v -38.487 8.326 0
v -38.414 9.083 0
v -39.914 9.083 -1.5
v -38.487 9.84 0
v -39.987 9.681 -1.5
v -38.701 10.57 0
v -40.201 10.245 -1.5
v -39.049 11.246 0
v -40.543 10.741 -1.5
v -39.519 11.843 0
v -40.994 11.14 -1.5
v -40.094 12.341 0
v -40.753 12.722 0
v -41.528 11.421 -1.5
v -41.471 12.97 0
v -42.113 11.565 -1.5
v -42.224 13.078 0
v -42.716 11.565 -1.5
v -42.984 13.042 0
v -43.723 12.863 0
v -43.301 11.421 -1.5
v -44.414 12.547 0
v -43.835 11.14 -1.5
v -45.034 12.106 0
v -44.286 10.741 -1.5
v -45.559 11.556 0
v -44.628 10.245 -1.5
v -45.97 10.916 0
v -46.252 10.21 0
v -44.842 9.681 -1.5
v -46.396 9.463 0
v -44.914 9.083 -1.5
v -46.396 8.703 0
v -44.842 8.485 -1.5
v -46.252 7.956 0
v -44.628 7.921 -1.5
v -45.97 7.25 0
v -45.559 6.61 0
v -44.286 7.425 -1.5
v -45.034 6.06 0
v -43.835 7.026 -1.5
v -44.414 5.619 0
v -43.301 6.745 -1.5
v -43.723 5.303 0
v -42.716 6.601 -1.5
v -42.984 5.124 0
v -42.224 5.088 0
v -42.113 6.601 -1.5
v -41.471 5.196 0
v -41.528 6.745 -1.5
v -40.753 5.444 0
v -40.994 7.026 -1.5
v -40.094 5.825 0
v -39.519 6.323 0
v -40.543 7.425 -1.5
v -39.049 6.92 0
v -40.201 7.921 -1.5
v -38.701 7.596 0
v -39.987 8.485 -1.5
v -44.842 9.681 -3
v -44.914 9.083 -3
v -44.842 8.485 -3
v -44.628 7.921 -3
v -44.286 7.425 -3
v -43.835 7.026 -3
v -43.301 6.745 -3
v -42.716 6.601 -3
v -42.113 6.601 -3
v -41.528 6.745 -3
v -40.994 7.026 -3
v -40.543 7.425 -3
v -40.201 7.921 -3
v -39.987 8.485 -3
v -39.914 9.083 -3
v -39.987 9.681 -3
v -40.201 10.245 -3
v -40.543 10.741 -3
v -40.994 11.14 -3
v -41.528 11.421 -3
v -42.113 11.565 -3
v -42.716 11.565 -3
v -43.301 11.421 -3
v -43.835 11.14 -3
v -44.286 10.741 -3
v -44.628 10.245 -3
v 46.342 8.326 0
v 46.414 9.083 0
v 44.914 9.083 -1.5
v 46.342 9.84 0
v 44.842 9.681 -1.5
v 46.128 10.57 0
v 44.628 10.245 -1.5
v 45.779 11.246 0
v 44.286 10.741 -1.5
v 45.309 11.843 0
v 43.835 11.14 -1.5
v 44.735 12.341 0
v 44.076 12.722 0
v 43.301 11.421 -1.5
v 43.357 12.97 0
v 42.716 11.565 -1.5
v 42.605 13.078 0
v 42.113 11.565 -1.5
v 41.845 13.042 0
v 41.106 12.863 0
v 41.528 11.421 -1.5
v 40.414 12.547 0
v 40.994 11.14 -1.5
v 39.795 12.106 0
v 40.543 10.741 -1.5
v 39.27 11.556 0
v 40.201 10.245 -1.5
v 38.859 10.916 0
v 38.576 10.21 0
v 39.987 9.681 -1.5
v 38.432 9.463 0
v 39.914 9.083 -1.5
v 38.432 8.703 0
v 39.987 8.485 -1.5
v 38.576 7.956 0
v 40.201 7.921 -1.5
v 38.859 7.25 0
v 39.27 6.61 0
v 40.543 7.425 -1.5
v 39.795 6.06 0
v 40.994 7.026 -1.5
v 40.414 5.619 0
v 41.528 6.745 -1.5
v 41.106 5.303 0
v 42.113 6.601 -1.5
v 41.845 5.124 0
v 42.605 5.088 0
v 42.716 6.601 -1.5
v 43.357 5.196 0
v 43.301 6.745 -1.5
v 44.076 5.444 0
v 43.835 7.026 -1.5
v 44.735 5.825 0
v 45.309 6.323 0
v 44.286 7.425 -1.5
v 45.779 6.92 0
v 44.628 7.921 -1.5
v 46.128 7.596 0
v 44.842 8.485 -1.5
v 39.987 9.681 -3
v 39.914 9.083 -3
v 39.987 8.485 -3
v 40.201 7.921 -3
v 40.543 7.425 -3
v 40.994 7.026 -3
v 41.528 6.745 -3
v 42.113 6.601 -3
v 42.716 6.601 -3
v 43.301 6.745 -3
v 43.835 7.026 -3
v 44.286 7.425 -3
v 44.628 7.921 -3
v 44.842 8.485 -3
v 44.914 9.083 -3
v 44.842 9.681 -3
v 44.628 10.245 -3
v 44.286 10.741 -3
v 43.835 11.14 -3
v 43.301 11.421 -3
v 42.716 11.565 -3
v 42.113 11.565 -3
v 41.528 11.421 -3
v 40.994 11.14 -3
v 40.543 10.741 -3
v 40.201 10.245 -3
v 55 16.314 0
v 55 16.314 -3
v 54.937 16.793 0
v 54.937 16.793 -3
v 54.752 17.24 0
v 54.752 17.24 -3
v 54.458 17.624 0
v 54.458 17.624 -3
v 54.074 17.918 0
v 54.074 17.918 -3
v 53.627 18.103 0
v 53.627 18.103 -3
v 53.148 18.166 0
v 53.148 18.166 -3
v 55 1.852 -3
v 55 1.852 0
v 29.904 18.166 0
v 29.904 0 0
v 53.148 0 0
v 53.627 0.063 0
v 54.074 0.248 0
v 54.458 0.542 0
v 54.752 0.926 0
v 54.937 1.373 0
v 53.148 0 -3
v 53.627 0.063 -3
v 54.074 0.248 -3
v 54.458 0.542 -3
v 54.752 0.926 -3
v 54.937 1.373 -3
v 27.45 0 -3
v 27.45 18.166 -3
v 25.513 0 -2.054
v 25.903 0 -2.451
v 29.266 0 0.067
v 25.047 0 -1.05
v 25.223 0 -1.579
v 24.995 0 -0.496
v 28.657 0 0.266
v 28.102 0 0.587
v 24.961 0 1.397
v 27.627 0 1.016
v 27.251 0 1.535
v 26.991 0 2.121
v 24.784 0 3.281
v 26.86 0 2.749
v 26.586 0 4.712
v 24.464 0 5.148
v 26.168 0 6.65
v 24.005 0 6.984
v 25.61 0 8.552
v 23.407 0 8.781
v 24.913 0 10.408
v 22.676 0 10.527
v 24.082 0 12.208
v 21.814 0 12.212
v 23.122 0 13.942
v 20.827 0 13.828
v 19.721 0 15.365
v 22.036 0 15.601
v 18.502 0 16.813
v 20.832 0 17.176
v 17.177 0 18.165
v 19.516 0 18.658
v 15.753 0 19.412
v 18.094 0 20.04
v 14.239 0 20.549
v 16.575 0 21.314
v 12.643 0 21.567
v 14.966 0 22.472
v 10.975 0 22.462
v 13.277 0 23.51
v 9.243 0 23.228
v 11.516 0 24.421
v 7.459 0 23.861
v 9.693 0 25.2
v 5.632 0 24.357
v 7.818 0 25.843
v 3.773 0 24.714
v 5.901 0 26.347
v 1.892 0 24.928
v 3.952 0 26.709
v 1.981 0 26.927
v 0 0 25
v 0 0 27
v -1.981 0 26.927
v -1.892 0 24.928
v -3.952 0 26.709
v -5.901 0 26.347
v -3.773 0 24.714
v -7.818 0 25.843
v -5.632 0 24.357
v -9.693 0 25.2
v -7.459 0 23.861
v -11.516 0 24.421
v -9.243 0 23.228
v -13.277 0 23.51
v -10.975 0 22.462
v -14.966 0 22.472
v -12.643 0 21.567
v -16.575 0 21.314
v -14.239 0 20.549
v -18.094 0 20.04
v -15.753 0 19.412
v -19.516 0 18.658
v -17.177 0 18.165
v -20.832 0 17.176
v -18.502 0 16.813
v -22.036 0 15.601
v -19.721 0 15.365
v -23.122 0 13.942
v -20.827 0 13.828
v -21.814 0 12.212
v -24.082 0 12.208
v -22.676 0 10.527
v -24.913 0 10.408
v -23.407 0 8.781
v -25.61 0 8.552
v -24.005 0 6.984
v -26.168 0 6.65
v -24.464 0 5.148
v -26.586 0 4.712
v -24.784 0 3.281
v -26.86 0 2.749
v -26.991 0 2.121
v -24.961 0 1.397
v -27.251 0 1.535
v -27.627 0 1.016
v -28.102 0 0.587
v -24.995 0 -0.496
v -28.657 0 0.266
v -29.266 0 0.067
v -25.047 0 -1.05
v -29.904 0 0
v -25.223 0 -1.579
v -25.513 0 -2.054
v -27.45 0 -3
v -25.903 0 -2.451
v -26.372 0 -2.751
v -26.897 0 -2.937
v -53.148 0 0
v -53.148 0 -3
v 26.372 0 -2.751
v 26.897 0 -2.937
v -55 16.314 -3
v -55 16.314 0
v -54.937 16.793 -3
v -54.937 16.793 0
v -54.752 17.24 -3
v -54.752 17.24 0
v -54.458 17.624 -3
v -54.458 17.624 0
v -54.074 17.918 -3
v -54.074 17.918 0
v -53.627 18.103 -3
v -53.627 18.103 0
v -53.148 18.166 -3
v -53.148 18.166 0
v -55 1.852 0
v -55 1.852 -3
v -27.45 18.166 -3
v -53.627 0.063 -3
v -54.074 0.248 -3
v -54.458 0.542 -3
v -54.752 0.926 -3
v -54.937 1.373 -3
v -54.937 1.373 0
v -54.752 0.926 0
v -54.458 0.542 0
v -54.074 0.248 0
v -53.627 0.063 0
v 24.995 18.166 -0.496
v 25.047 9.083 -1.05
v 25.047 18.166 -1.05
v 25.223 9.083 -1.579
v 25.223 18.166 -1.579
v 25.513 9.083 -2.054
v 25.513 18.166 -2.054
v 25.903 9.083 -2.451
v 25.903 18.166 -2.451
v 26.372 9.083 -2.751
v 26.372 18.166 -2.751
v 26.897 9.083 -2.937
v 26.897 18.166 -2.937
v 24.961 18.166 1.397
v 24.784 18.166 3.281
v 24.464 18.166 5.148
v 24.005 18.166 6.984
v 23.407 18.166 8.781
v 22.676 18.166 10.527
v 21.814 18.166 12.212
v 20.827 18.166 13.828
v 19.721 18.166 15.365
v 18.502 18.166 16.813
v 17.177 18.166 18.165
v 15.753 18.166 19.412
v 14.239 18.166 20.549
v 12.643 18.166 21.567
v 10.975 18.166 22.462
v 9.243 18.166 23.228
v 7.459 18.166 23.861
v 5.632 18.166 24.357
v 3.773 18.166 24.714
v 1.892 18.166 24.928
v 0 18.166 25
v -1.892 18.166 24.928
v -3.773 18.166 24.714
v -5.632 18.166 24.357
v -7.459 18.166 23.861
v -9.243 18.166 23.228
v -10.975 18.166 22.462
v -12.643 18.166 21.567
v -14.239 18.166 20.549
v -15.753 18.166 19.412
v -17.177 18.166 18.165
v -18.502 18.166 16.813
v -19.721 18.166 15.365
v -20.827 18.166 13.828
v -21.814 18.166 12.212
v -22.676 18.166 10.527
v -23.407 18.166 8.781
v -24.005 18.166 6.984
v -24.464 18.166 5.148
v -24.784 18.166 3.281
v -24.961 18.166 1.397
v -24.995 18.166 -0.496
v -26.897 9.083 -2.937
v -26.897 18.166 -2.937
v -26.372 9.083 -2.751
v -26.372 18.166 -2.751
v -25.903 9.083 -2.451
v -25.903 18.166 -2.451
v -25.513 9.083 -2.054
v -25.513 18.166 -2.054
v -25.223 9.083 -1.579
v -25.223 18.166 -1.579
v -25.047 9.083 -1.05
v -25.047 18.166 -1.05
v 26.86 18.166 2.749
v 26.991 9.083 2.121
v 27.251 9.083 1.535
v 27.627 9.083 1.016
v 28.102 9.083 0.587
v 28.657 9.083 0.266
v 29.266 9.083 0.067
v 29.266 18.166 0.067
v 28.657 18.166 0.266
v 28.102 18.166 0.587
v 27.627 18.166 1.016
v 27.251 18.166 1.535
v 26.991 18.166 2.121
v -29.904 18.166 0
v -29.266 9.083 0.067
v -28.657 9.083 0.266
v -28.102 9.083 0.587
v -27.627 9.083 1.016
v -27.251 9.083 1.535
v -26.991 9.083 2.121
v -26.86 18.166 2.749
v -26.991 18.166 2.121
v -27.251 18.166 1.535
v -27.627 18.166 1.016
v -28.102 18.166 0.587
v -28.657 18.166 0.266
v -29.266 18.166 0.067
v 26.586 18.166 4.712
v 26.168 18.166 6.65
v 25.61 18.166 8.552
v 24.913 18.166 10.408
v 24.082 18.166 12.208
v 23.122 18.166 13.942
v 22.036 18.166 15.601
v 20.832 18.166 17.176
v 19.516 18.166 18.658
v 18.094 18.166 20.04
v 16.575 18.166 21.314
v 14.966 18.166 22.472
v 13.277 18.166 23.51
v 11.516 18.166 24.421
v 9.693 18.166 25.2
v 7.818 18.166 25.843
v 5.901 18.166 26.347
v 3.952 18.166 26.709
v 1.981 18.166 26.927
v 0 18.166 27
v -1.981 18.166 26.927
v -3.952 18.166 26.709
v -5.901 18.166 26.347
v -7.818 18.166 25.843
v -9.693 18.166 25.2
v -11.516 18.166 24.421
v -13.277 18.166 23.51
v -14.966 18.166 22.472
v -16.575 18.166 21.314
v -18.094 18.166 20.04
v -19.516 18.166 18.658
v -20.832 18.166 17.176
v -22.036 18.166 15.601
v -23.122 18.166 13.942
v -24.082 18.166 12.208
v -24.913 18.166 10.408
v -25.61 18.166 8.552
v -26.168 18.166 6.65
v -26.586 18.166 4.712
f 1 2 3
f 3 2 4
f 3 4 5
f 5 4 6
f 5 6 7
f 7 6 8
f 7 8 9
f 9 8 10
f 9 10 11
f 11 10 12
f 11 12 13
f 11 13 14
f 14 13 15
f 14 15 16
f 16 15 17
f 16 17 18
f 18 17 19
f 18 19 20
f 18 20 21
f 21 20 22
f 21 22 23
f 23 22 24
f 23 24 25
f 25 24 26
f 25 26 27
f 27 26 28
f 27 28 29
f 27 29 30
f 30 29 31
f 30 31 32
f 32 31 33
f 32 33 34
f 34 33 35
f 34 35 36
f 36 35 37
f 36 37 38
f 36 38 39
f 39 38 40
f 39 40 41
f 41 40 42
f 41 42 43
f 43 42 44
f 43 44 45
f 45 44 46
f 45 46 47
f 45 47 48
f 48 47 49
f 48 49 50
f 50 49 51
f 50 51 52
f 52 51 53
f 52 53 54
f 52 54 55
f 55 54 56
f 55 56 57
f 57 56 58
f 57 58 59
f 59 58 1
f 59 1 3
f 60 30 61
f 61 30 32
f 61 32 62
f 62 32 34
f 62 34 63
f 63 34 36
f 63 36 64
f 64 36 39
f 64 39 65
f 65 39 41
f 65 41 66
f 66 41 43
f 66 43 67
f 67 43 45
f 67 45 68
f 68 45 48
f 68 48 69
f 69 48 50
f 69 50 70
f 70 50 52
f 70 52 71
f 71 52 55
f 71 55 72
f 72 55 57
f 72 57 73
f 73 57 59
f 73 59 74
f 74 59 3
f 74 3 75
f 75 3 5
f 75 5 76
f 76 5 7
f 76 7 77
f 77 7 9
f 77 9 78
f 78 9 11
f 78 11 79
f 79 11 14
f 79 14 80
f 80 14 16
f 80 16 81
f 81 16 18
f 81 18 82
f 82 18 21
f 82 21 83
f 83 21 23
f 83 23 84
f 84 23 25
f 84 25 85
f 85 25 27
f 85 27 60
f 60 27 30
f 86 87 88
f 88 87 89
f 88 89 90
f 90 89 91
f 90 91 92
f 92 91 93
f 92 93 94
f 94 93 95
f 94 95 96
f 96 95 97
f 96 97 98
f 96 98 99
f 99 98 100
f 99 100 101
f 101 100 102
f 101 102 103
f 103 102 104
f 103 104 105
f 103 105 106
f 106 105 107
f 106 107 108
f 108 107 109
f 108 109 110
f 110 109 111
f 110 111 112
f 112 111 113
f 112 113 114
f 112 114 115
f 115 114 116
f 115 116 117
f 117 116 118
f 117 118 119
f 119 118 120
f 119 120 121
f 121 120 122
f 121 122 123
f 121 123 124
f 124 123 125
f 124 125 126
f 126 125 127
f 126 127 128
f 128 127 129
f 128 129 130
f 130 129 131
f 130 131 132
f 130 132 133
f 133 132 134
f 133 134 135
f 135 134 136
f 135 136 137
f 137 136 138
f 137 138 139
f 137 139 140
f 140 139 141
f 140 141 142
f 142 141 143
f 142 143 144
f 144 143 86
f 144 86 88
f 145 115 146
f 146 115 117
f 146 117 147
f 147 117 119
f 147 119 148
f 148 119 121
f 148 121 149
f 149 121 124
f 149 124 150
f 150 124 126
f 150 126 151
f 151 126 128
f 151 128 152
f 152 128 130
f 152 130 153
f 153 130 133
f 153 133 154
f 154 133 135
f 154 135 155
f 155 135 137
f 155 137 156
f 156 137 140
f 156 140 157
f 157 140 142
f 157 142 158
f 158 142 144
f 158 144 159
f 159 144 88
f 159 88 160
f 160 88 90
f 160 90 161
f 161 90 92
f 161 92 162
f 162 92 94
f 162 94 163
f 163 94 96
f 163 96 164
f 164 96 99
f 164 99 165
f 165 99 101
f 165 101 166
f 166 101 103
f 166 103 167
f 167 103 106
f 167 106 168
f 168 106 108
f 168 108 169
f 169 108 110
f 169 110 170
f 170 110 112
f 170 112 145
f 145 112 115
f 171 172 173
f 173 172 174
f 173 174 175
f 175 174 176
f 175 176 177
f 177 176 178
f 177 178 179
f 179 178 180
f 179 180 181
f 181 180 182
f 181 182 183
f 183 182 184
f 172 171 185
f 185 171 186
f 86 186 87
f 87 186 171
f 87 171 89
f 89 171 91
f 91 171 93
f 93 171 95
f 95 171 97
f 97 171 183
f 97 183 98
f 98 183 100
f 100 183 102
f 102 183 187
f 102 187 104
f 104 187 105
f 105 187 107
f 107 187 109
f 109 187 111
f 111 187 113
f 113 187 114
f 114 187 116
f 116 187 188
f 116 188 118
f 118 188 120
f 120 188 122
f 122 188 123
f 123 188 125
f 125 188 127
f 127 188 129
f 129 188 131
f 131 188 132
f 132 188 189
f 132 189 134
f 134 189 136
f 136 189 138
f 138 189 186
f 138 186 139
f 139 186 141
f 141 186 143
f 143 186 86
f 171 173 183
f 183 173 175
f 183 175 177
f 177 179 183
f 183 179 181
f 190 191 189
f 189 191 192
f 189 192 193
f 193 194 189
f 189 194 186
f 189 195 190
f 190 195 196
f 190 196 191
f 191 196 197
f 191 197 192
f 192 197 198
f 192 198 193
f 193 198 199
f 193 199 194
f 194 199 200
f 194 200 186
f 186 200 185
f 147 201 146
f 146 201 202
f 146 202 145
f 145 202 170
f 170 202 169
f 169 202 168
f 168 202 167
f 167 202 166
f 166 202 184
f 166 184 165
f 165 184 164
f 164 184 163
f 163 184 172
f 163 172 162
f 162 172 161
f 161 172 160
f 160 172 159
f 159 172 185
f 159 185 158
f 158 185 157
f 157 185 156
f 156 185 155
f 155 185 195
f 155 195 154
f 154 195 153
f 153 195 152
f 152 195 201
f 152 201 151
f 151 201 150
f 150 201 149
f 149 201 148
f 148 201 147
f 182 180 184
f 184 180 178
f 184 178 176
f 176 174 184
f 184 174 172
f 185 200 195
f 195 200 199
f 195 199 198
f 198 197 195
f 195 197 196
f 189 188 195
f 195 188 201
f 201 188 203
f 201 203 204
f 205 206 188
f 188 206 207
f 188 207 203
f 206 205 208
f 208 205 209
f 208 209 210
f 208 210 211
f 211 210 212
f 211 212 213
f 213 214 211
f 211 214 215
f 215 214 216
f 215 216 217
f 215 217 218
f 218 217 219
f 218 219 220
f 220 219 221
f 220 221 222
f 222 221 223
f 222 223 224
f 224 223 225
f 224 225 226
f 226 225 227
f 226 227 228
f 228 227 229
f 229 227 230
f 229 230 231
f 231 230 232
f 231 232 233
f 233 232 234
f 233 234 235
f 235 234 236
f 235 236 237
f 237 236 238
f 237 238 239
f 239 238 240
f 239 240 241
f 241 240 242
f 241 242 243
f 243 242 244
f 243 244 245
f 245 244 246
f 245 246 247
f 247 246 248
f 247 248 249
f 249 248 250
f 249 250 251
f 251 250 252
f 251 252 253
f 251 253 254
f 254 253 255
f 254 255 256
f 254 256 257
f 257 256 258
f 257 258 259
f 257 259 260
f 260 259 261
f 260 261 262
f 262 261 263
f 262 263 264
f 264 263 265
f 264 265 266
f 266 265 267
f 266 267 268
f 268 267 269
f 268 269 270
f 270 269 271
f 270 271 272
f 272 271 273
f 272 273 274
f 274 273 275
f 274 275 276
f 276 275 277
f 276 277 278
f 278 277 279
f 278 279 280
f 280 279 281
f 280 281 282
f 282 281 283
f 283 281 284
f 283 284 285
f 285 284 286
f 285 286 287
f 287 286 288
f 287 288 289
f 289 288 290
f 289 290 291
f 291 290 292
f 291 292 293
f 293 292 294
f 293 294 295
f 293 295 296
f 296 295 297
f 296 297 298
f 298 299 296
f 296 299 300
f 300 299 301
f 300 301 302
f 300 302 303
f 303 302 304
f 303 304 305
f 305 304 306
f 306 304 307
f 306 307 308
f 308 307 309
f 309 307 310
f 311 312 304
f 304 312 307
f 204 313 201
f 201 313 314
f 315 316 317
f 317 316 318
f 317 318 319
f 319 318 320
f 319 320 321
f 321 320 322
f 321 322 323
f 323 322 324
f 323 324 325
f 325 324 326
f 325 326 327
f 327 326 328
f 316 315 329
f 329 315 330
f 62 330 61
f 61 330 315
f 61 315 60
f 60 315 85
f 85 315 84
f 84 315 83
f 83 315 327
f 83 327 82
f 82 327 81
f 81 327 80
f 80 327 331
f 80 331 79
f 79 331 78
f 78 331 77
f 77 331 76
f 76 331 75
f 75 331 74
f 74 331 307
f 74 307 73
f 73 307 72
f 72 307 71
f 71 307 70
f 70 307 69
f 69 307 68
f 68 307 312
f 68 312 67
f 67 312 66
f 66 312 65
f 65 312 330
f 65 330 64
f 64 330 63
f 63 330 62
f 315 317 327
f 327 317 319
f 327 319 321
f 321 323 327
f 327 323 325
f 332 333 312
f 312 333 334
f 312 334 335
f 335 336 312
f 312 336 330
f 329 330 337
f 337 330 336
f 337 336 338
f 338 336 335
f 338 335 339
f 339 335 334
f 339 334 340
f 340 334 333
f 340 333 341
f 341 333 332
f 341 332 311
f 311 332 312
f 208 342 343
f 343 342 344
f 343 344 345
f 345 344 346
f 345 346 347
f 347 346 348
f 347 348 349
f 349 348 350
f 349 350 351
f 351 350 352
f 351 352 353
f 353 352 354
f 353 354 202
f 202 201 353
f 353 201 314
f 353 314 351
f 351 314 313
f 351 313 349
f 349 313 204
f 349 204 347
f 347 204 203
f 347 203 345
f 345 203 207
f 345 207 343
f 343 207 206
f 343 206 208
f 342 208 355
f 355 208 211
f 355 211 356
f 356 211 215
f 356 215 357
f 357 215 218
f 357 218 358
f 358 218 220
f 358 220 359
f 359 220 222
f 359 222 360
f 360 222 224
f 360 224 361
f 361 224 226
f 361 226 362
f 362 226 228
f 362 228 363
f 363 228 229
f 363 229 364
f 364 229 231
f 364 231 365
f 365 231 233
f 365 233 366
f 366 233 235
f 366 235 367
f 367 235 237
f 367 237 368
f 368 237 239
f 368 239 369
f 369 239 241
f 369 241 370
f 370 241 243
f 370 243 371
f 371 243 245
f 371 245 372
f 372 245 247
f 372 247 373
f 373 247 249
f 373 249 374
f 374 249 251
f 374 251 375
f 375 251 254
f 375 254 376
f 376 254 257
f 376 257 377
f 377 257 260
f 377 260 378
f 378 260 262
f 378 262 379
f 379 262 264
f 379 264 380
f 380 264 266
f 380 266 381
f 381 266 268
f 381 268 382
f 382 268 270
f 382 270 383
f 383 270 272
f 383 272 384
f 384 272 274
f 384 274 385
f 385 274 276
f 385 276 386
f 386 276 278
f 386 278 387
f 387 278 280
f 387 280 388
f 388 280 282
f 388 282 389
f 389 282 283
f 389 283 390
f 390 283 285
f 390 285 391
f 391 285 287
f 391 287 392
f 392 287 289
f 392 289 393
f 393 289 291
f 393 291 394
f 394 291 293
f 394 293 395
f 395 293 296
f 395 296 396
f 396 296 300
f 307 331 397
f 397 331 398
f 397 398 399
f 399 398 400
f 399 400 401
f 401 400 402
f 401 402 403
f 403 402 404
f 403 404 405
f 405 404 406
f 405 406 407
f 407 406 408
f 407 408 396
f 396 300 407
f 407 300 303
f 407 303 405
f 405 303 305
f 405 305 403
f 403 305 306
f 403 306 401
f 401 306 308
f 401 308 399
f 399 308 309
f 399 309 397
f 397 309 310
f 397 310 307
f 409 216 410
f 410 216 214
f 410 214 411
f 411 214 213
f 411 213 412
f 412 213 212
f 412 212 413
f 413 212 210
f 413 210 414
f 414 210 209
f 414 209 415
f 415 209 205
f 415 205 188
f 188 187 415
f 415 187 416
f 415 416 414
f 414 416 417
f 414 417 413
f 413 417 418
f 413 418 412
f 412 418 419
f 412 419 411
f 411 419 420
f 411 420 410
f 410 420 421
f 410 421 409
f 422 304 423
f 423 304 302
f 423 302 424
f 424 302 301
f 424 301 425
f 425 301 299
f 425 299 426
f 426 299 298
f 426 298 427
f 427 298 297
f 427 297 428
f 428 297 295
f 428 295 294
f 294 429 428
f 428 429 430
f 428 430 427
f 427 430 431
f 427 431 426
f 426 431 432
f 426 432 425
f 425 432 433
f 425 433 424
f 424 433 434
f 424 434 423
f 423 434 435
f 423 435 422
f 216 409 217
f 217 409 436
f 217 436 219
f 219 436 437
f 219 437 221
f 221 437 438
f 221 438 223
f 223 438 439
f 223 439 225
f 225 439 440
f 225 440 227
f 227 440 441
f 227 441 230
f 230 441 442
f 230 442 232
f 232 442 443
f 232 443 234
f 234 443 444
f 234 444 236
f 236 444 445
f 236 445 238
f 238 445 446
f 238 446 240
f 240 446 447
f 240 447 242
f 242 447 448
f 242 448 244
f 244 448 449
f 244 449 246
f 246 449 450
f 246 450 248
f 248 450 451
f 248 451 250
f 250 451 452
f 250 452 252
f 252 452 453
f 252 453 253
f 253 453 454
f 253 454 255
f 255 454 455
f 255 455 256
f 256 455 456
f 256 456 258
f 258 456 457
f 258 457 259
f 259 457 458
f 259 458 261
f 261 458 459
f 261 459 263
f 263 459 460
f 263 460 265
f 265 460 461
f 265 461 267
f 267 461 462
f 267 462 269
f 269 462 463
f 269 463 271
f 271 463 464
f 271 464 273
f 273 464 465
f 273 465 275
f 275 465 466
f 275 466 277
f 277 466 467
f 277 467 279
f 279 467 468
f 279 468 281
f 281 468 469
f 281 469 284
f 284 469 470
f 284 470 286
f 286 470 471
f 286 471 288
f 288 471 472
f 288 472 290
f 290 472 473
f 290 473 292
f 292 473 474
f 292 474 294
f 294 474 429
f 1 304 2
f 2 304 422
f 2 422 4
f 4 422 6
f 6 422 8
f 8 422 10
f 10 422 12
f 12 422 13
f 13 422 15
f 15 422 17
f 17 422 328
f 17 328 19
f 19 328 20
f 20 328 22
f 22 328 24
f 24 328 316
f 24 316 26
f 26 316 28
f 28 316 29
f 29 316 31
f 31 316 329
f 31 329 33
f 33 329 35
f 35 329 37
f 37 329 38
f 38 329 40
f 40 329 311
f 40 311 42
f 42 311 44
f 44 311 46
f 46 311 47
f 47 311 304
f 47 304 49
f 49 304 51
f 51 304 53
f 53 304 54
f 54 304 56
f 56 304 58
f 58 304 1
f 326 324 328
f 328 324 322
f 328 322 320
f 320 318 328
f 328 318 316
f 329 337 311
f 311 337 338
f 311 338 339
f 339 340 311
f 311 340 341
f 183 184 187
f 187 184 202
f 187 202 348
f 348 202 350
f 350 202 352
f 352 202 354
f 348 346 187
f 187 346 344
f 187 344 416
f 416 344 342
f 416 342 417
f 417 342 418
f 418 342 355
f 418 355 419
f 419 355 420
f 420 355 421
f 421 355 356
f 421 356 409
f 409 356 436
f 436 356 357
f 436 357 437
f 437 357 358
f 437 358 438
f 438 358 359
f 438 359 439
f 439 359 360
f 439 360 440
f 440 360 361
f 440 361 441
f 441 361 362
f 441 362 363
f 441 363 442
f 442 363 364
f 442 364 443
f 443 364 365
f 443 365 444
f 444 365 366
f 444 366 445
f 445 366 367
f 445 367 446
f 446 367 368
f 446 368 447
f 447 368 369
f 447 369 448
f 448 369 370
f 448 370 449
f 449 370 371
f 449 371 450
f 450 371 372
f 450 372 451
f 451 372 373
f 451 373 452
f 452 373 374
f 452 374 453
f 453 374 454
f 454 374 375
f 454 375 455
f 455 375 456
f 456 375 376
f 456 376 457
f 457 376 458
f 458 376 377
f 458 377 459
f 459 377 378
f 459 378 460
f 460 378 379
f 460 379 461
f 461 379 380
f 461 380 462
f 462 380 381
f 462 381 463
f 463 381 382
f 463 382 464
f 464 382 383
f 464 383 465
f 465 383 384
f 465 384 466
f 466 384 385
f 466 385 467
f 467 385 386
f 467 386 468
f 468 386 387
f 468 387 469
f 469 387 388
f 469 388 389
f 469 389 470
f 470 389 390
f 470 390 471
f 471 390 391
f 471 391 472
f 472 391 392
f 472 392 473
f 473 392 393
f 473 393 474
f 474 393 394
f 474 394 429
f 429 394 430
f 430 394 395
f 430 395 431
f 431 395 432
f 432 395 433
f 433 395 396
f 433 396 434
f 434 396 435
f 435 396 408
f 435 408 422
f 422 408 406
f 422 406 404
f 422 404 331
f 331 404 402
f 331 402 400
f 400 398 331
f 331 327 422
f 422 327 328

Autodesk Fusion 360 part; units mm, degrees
sketch "Sketch1" plane through (0, 0, 0) normal (0, 0, 1) x (1, 0, 0)
sketch "Sketch2" plane through (0, 0, 0) normal (0, 1, 0) x (1, 0, 0)
  circle A0 centre (0, 0) radius 25
  circle A1 centre (0, 0) radius 27
  line L0 (-55, 0) -> (55, 0)
  line L1 (-55, 0) -> (-55, 3)
  line L2 (-55, 3) -> (55, 3)
  line L3 (55, 0) -> (55, 3)
  dimension "d1" = 50
  dimension "d2" = 2
extrude "Extrude1" add sketch "Sketch2" along normal blind 18.166 contours A0 A1 L0 | A0 A1 L0 L2 | A0 A1 L0 L2 | A1 L0 L2 L3 | A1 L0 L1 L2
fillet "Fillet1" radius 3.06 2 edges at (-27, 9.083, 0) (27, 9.083, 0)
fillet "Fillet2" radius 2.455 2 edges at (-24.8193, 9.083, -3) (24.8193, 9.083, -3)
fillet "Fillet3" radius 1.852 4 edges at (-55, 0, -1.5) (-55, 18.166, -1.5) (55, 0, -1.5) (55, 18.166, -1.5)
hole "Hole1" at (42.4144, 9.083, 0) direction (0, 0, -1) diameter 5 depth 7 tip angle 118 countersink diameter 8 countersink angle 90
hole "Hole2" at (-42.4144, 9.083, 0) direction (0, 0, -1) diameter 5 depth 7 tip angle 118 countersink diameter 8 countersink angle 90
